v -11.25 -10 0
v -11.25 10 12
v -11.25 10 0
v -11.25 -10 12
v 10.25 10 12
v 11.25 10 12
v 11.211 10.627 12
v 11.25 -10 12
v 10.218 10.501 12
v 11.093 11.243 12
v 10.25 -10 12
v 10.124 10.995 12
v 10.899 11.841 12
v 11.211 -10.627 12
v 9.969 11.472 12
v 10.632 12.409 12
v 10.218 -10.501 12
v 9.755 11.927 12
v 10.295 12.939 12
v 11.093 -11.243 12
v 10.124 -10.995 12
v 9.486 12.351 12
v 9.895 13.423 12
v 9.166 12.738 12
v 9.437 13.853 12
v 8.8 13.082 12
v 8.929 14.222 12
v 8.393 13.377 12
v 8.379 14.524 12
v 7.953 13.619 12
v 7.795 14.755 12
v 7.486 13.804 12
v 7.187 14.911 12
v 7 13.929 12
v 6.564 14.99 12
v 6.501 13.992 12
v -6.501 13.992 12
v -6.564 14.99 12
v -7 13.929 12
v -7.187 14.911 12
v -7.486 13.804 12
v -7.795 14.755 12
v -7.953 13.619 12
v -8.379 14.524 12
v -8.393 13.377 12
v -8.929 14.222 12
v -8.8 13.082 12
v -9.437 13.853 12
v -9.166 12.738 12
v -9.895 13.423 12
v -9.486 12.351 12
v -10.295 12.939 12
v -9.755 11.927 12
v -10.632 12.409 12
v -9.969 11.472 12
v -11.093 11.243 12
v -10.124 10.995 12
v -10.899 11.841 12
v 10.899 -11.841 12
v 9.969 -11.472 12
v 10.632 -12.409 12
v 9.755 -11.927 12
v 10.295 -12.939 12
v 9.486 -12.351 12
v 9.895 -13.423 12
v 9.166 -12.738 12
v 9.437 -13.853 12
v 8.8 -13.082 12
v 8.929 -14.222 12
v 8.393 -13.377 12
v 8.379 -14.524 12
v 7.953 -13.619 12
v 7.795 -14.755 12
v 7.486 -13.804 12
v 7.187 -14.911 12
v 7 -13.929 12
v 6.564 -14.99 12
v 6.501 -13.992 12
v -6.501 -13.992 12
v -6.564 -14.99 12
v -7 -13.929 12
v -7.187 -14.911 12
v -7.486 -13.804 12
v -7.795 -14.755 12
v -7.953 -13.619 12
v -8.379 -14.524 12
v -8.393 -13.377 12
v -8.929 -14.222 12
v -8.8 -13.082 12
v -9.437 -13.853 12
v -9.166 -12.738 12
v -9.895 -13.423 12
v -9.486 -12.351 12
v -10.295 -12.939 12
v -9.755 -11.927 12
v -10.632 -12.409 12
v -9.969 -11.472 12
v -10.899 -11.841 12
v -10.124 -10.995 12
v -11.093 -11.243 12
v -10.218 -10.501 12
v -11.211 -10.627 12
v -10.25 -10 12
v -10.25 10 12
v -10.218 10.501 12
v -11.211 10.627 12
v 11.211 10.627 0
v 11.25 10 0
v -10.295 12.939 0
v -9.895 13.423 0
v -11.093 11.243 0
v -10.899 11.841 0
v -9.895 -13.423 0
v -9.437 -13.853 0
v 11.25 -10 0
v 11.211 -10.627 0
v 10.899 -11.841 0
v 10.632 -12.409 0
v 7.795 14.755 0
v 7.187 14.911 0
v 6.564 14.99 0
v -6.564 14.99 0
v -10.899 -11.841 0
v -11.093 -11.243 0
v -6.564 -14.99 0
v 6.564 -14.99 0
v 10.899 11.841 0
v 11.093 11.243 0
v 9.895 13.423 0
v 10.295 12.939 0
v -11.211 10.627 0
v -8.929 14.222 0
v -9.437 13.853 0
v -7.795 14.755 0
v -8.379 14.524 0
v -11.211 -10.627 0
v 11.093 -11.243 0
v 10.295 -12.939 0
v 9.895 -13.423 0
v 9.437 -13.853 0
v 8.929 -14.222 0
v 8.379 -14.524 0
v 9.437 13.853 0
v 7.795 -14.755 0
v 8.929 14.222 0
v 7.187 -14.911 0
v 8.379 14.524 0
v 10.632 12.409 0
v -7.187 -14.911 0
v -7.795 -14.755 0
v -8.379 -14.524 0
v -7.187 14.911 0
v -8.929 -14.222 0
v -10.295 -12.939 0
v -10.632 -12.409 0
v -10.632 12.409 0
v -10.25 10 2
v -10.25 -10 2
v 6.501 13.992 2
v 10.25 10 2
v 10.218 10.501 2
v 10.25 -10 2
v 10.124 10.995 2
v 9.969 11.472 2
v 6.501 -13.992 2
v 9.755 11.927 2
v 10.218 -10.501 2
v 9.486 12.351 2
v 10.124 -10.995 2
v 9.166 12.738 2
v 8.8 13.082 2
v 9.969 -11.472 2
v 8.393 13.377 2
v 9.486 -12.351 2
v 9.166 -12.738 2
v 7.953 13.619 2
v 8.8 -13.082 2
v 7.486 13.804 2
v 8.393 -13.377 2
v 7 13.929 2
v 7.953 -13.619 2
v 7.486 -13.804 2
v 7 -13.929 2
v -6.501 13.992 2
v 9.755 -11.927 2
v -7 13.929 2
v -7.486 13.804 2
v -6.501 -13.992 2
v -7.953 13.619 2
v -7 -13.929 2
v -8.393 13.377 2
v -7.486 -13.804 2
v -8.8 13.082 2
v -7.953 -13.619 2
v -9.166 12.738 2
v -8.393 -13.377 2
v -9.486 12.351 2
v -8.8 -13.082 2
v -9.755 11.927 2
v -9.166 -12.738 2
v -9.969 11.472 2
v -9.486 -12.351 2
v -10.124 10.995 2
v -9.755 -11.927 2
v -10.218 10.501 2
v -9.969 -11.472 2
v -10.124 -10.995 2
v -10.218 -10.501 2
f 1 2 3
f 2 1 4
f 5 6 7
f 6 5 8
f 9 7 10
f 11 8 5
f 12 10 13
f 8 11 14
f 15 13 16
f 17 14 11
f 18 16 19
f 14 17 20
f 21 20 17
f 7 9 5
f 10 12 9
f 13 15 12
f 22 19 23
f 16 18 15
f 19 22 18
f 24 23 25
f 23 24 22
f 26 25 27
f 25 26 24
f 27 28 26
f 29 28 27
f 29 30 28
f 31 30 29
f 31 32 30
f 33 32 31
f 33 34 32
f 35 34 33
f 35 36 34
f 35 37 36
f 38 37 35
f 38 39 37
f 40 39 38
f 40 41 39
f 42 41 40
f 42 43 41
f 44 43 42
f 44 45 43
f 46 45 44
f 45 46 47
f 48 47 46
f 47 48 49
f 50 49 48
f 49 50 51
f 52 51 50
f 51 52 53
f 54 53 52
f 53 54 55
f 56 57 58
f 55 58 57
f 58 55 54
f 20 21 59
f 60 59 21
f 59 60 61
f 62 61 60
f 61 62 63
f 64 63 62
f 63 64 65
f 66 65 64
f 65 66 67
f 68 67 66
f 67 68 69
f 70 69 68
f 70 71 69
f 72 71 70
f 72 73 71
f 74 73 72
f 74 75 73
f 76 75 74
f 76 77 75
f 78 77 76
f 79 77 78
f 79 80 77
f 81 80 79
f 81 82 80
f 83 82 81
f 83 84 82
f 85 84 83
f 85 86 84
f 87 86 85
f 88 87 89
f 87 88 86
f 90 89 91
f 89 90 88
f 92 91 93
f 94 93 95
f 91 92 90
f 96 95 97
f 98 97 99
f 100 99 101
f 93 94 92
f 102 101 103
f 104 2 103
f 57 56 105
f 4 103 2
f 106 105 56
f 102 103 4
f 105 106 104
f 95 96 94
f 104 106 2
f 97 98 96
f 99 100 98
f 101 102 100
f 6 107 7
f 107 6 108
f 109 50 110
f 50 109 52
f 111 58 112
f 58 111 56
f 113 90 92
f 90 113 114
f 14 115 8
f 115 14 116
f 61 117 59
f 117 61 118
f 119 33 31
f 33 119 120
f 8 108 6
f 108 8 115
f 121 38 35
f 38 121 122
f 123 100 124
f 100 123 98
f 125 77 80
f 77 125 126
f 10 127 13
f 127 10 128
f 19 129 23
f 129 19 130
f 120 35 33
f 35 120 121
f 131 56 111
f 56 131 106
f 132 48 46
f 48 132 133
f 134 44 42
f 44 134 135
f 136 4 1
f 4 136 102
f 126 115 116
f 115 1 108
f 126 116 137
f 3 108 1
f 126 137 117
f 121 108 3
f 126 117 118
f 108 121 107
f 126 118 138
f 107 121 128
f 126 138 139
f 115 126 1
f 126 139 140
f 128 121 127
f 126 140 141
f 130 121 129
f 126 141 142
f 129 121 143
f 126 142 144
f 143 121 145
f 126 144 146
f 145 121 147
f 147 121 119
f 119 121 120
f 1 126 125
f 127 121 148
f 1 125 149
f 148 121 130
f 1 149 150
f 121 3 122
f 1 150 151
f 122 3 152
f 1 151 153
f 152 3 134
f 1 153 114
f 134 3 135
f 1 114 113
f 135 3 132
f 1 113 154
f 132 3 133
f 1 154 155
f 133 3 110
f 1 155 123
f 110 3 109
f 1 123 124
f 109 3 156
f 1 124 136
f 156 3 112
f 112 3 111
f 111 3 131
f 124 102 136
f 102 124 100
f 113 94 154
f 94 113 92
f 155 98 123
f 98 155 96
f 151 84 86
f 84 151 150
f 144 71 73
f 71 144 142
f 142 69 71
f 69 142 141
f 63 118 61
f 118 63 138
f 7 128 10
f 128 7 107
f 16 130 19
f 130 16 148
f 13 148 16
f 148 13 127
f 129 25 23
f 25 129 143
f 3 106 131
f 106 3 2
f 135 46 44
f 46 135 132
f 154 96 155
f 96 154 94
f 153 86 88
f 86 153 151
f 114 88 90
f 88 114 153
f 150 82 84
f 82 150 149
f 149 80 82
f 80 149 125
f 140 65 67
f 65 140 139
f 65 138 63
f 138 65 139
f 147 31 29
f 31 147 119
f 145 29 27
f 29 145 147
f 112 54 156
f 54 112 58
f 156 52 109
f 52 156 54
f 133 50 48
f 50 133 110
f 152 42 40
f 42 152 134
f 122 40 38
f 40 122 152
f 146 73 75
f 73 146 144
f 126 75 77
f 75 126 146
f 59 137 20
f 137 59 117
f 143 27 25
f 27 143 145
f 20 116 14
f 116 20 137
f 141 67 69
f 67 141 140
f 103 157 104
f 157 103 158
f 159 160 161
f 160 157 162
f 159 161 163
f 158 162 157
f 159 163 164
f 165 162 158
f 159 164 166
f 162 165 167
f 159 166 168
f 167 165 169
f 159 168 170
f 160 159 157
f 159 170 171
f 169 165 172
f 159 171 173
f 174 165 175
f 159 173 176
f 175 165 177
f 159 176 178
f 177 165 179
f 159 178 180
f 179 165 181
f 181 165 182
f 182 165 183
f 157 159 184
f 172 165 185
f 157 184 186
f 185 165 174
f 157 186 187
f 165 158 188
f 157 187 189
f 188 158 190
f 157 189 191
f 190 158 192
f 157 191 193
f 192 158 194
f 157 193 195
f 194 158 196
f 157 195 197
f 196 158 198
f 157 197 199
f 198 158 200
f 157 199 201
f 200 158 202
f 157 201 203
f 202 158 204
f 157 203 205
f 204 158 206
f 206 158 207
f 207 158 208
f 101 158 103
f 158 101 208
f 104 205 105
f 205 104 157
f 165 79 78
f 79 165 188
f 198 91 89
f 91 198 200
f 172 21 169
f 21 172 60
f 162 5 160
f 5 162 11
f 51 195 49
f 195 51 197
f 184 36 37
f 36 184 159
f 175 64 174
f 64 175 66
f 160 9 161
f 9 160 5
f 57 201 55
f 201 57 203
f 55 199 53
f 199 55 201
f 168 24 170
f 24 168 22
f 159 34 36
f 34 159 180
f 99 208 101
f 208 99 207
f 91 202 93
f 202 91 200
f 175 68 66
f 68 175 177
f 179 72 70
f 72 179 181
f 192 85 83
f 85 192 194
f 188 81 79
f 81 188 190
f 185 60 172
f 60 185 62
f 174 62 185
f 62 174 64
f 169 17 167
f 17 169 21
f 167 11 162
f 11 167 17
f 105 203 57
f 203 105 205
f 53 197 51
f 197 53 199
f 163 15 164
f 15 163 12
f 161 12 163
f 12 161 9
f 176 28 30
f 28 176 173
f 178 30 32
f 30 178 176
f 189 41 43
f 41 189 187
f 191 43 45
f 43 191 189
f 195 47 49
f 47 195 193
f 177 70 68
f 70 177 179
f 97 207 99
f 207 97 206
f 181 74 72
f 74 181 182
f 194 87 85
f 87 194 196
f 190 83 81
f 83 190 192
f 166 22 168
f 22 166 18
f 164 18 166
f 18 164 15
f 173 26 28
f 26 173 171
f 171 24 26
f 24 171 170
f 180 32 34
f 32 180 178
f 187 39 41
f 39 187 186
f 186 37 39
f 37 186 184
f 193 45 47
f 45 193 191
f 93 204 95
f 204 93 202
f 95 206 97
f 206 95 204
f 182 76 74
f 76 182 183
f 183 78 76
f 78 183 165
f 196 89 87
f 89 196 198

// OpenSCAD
$fn = 50;


difference() {
	union() {
		hull() {
			translate(v = [-6.2500000000, 10.0000000000, 0]) {
				cylinder(h = 12, r = 5);
			}
			translate(v = [6.2500000000, 10.0000000000, 0]) {
				cylinder(h = 12, r = 5);
			}
			translate(v = [-6.2500000000, -10.0000000000, 0]) {
				cylinder(h = 12, r = 5);
			}
			translate(v = [6.2500000000, -10.0000000000, 0]) {
				cylinder(h = 12, r = 5);
			}
		}
	}
	union() {
		translate(v = [0, 0, 2]) {
			hull() {
				translate(v = [-6.2500000000, 10.0000000000, 0]) {
					cylinder(h = 10, r = 4);
				}
				translate(v = [6.2500000000, 10.0000000000, 0]) {
					cylinder(h = 10, r = 4);
				}
				translate(v = [-6.2500000000, -10.0000000000, 0]) {
					cylinder(h = 10, r = 4);
				}
				translate(v = [6.2500000000, -10.0000000000, 0]) {
					cylinder(h = 10, r = 4);
				}
			}
		}
	}
}
